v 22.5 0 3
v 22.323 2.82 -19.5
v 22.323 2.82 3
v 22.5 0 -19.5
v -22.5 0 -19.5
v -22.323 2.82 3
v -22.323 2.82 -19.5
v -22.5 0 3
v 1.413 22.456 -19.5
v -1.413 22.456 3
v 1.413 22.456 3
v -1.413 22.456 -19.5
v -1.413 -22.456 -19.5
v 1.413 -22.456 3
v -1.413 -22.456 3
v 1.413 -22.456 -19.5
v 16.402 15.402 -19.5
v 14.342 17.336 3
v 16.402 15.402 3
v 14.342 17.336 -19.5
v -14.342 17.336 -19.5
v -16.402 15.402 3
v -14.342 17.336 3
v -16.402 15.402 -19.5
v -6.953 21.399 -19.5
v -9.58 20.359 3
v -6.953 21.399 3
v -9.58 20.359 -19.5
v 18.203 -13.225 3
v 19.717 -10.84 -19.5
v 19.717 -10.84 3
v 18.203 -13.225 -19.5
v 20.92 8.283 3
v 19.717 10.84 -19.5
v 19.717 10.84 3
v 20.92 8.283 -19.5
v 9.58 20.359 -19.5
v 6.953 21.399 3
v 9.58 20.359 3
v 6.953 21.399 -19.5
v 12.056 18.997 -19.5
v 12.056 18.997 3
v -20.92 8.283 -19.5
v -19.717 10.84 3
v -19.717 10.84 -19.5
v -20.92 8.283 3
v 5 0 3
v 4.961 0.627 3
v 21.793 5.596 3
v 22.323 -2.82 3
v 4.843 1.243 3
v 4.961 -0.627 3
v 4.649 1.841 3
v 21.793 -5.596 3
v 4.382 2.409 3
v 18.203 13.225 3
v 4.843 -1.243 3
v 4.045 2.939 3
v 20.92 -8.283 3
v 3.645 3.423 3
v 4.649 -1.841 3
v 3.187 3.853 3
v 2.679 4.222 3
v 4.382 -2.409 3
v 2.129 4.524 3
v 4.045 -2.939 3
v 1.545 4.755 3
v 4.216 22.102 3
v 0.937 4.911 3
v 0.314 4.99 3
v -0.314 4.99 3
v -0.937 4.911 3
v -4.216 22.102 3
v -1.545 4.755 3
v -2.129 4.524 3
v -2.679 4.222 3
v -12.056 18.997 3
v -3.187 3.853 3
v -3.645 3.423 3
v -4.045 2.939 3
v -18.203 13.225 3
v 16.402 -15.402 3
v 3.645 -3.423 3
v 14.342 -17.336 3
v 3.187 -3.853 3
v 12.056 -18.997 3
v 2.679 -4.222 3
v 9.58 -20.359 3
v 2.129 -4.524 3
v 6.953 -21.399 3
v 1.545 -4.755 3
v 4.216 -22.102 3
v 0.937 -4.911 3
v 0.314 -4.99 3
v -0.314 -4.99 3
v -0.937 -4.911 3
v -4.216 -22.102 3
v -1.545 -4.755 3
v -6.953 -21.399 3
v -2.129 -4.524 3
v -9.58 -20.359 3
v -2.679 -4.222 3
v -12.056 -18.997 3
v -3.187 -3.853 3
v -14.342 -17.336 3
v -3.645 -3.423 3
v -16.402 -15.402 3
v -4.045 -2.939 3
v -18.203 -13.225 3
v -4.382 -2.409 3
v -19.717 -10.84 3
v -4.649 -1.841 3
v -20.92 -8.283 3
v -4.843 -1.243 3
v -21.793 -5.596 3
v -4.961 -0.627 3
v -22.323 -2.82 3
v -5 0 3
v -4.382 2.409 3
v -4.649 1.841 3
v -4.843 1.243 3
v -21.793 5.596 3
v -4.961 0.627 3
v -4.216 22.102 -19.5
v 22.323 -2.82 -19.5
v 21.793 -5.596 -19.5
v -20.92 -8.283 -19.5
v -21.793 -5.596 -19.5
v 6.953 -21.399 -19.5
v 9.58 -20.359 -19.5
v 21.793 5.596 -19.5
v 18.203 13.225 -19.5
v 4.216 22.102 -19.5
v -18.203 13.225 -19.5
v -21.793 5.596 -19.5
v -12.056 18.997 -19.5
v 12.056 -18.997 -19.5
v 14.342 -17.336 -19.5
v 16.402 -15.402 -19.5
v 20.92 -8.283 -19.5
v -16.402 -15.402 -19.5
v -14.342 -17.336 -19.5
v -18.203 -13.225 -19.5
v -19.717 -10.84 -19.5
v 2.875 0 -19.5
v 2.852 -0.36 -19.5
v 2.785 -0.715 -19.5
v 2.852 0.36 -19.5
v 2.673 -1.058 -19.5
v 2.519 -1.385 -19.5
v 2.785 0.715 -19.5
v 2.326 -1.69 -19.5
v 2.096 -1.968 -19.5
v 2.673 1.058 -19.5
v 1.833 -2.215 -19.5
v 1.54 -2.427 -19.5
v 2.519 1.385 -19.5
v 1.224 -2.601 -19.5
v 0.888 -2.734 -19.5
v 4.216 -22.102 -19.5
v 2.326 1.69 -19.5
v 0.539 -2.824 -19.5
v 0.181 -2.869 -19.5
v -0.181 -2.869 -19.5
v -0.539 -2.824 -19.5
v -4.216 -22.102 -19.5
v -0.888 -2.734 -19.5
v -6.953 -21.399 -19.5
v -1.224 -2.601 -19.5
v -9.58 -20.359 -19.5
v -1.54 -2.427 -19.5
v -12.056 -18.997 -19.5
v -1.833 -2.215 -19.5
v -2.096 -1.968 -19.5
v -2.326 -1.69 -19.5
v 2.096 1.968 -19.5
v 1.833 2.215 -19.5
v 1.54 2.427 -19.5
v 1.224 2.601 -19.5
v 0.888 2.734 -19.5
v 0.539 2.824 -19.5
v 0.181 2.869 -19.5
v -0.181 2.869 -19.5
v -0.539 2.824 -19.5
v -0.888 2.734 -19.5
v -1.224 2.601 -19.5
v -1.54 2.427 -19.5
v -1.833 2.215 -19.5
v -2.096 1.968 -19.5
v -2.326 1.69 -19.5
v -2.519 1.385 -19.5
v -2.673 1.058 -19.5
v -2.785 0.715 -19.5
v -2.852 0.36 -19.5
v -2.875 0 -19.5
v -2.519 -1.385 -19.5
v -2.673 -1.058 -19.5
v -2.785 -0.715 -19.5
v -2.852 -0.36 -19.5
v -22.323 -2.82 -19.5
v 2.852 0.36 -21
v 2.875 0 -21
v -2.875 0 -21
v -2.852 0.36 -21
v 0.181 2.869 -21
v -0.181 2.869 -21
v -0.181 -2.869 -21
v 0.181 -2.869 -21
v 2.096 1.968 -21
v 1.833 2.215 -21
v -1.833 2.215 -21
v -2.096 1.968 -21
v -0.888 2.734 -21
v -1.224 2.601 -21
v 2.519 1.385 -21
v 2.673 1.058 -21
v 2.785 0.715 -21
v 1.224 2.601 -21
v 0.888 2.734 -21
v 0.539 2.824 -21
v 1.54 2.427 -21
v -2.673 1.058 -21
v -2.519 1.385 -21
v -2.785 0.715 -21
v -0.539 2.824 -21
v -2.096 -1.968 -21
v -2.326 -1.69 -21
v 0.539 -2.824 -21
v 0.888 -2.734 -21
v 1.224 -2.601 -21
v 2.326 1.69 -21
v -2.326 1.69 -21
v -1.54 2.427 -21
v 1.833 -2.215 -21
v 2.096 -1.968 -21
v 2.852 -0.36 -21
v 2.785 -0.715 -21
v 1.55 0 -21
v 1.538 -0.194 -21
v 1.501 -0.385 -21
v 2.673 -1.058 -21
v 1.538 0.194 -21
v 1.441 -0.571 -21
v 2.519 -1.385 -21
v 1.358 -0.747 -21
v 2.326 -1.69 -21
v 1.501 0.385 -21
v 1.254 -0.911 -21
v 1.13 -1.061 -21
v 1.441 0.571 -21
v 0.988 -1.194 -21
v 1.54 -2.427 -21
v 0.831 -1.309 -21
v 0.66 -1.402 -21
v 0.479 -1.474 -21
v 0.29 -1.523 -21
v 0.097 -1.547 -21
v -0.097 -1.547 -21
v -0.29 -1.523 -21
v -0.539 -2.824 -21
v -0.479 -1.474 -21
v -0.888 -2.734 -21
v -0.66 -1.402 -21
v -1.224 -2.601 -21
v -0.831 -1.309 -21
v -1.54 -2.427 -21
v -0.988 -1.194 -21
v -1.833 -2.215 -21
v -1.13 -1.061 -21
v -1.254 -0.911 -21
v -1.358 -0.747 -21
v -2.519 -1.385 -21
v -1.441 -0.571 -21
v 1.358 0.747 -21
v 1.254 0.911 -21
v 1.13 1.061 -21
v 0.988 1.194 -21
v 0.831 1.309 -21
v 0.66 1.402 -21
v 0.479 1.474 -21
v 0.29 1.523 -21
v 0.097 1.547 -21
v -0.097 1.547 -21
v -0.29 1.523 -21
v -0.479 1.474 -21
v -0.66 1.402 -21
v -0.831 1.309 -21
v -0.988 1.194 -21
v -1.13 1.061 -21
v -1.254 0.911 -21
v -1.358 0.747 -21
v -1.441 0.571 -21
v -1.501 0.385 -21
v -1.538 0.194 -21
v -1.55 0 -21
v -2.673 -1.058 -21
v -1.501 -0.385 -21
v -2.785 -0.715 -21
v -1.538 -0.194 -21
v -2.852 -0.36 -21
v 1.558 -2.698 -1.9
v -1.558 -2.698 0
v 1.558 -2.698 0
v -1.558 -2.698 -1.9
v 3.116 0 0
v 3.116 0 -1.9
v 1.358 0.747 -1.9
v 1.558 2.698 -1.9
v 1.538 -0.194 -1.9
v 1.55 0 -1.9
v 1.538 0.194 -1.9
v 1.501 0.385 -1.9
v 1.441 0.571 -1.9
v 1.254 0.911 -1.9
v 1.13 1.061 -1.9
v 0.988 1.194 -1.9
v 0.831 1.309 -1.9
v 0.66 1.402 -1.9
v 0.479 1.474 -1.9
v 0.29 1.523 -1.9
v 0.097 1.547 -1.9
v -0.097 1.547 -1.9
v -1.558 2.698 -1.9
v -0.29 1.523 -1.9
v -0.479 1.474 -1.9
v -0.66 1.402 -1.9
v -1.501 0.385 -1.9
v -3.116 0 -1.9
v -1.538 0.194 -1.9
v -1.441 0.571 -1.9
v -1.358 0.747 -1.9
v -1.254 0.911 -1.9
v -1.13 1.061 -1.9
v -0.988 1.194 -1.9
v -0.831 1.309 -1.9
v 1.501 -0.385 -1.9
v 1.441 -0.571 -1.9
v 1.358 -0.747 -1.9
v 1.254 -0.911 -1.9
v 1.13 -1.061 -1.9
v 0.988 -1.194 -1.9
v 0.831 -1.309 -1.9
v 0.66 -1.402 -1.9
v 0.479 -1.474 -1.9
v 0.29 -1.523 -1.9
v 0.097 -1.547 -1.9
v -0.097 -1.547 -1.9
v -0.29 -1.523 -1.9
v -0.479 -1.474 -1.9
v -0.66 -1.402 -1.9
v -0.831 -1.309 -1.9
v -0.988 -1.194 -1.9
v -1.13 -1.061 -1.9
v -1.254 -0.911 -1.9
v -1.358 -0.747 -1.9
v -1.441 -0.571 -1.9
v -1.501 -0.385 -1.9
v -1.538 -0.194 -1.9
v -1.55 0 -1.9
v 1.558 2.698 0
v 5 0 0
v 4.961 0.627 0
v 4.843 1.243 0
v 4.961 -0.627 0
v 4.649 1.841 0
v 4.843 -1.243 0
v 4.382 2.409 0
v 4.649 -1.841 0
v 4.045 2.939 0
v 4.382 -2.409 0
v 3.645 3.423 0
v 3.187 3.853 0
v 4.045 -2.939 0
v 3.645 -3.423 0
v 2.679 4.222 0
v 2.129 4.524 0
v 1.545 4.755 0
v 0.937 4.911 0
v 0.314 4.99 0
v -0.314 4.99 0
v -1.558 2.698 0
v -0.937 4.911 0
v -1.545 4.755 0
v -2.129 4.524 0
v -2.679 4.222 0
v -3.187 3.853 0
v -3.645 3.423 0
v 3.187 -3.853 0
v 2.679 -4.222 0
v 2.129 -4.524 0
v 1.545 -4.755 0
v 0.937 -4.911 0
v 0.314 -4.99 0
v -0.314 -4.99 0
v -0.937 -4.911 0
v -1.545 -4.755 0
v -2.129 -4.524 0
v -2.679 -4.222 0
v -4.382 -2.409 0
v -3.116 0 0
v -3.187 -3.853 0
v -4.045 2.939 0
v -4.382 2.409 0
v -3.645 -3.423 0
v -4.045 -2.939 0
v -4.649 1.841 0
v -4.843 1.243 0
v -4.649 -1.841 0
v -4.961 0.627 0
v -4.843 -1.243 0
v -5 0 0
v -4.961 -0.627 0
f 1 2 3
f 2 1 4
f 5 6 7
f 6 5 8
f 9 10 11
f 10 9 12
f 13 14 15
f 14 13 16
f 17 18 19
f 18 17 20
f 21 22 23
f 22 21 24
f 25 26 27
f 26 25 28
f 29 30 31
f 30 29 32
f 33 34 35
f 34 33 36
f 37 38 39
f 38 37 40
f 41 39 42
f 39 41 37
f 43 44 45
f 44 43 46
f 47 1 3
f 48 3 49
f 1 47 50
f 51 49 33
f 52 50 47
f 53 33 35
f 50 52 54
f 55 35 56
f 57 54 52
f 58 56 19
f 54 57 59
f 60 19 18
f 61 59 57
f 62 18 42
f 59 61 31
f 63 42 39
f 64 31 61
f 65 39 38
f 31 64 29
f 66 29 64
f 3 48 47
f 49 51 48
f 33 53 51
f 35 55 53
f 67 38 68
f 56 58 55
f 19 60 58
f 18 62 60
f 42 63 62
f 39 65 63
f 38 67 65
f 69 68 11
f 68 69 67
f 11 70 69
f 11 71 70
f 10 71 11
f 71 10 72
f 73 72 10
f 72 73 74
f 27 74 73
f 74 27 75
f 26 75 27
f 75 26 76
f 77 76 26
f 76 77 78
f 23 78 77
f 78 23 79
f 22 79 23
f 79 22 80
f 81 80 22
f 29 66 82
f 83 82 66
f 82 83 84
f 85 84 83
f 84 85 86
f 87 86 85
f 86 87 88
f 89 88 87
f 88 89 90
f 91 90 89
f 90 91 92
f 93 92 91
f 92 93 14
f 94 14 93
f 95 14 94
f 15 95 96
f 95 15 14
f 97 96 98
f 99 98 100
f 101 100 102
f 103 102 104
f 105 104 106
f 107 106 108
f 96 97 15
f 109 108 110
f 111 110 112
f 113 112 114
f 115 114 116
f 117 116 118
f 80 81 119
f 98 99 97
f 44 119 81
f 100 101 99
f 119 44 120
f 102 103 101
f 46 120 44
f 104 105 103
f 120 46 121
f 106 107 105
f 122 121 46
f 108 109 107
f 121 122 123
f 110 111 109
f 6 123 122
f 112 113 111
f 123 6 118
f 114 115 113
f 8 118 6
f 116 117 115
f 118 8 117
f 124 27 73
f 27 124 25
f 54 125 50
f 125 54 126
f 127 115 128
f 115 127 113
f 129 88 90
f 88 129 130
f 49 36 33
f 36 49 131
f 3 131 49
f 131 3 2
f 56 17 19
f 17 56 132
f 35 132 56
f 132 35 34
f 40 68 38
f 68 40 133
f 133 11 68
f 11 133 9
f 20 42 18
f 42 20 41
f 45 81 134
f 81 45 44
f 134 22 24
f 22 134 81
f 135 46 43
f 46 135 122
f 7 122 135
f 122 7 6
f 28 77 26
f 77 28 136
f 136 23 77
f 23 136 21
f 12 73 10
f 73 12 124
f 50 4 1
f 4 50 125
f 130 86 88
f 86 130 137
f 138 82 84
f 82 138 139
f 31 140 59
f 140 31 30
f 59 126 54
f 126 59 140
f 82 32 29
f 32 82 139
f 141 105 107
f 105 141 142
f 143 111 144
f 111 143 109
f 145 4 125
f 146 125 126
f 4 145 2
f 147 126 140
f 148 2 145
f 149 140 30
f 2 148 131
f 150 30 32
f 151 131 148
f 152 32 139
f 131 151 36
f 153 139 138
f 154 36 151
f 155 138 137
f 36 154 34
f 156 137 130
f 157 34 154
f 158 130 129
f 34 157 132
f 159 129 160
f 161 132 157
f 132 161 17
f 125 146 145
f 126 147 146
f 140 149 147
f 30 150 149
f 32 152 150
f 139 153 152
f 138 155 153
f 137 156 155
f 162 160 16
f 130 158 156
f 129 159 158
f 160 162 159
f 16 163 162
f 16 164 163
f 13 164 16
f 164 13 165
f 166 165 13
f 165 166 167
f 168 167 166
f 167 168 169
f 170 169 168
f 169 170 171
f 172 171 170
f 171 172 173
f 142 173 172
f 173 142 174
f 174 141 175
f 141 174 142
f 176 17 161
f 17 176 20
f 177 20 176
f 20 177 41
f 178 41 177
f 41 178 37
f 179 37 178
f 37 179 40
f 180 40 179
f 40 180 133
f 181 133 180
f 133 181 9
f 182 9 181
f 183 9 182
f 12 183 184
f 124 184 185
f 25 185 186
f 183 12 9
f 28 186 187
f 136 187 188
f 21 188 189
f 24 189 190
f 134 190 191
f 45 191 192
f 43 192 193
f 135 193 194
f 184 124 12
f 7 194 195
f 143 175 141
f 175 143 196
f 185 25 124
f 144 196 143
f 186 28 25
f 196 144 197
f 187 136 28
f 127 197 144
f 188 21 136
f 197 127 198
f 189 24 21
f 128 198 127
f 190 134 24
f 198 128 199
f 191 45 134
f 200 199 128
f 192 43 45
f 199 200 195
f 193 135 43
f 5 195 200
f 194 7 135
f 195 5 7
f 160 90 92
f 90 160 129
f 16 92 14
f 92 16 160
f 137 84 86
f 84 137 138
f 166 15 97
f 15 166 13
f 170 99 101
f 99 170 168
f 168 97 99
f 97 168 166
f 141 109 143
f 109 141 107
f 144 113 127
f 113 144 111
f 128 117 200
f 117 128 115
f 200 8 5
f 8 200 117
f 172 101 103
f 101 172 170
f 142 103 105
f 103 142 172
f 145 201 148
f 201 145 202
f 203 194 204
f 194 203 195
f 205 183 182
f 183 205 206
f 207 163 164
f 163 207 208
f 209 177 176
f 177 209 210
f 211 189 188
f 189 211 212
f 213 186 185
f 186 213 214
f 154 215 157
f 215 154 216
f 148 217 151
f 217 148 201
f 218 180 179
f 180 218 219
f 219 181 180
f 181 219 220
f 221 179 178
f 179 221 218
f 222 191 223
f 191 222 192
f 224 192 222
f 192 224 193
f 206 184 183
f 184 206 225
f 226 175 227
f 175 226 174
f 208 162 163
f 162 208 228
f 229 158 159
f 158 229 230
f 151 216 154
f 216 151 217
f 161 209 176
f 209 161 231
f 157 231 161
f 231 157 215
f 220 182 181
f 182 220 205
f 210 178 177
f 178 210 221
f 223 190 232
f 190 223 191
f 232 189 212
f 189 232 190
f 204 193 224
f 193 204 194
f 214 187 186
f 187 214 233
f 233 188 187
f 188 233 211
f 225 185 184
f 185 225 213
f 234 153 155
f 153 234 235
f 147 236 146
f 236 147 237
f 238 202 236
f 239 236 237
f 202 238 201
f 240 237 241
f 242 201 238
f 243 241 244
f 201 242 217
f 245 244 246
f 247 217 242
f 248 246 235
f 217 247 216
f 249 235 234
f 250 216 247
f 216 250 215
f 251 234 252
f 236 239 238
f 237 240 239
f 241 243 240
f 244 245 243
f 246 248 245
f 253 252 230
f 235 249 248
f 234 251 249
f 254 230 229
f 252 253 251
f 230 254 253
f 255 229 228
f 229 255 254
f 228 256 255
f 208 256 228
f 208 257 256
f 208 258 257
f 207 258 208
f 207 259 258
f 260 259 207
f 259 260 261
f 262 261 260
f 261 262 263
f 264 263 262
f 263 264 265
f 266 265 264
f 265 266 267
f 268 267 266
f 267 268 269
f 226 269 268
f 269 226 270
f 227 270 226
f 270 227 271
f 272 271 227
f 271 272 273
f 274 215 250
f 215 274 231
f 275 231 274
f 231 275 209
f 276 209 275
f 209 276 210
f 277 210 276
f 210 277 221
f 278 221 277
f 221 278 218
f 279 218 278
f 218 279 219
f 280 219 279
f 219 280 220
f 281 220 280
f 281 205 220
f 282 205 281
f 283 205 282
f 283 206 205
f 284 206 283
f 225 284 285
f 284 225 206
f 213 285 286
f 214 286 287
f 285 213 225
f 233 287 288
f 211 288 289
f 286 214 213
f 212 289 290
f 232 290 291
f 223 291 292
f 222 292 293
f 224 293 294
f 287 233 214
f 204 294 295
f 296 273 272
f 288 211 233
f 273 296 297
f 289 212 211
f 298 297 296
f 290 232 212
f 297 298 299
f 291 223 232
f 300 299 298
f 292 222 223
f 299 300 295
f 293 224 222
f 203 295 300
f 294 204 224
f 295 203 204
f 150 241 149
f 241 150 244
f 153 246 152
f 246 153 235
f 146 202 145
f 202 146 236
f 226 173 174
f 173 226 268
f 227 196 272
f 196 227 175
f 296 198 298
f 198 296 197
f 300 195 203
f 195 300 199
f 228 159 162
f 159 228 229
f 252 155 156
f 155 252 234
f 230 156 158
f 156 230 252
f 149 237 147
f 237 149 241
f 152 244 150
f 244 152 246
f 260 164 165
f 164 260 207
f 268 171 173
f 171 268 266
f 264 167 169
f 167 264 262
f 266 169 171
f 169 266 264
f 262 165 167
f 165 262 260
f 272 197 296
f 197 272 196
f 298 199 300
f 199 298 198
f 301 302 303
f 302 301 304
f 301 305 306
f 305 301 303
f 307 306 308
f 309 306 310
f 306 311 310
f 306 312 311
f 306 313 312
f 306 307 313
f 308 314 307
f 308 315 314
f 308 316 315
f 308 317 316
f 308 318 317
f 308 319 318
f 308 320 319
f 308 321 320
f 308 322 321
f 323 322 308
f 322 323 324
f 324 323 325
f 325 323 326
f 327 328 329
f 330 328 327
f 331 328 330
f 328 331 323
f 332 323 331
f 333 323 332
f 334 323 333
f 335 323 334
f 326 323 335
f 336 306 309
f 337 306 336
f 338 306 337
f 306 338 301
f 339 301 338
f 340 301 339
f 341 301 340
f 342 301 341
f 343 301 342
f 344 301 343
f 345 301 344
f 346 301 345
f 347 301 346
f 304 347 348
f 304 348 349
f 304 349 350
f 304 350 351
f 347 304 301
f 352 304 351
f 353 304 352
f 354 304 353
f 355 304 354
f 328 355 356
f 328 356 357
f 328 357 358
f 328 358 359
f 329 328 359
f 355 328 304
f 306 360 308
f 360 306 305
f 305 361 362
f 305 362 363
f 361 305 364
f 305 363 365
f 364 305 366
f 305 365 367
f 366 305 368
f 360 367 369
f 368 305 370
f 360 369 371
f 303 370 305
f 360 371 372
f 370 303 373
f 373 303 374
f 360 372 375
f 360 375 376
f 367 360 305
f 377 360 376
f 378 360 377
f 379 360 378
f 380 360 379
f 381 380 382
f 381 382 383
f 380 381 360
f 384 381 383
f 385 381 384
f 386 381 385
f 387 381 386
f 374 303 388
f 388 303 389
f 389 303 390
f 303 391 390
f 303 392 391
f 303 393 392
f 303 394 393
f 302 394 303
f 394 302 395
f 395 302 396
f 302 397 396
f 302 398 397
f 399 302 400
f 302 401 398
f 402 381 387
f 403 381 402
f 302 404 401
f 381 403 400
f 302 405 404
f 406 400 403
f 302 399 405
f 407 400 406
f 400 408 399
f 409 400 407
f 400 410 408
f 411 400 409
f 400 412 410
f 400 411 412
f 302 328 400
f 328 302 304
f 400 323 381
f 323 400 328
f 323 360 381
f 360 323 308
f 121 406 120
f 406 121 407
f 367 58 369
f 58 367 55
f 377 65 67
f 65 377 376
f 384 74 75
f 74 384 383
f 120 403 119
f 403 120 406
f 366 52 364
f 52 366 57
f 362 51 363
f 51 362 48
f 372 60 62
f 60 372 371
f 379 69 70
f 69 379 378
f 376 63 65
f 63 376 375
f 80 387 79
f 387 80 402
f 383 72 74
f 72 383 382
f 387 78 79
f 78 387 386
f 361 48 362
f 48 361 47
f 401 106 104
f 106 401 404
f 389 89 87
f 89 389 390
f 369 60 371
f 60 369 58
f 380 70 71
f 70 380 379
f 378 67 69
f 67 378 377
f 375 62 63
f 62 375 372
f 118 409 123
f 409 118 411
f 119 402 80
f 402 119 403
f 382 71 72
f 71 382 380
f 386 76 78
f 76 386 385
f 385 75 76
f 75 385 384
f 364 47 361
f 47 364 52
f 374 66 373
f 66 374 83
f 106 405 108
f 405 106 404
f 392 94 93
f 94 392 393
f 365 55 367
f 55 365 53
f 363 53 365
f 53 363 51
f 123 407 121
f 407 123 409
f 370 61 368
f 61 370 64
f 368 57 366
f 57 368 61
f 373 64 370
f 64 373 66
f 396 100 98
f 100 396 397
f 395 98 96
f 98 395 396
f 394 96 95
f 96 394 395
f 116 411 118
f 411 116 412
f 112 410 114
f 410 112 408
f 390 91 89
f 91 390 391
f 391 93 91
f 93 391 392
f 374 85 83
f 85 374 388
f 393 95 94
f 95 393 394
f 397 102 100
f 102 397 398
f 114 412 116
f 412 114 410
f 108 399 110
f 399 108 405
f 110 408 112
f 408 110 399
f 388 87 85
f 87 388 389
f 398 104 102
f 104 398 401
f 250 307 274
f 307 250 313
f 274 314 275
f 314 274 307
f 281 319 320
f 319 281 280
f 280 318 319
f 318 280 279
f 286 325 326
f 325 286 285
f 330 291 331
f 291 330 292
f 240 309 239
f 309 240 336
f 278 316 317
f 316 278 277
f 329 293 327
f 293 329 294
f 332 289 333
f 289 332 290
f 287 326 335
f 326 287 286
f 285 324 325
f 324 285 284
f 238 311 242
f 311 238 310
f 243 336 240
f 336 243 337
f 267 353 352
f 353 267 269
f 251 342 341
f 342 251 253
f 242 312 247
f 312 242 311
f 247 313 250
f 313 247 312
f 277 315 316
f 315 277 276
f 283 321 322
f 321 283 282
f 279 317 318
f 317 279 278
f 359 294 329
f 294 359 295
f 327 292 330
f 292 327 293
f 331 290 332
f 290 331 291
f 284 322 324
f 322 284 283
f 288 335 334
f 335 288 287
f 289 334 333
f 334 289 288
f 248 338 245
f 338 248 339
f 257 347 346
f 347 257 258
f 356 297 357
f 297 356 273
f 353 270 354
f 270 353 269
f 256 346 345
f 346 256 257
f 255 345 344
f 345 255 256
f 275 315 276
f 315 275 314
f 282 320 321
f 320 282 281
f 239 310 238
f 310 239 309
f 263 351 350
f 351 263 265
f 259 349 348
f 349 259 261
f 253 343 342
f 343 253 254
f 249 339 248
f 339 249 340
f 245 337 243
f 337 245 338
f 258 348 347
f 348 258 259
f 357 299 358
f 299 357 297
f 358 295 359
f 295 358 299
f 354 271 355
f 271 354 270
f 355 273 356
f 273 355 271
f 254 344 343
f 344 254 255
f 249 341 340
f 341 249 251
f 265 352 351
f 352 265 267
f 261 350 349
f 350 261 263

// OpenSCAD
$fn = 50;

difference() {
	union() {
		translate(v = [0, 0, -19.5]) {
			cylinder(h = 22.5, r = 22.5);
		}
		#translate(v = [0, 0, -21.0]) {
			cylinder(h = 21, r = 2.875);
		}
	}
	union() {
		translate(v = [0, 0, 0]) {
			rotate(a = [0, 0, 0]) {
				difference() {
					union() {
						translate(v = [0, 0, -1.9]) {
							linear_extrude(height = 1.9) {
								polygon(points = [[3.1158, 0.0], [1.5579000000000005, 2.698361953111554], [-1.5578999999999994, 2.6983619531115544], [-3.1158, 3.815754496783323e-16], [-1.5579000000000014, -2.6983619531115535], [1.557899999999998, -2.6983619531115552]]);
							}
						}
					}
					union();
				}
			}
		}
		#cylinder(h = 3, r = 5.0);
		#translate(v = [0, 0, -100.0]) {
			cylinder(h = 200, r = 1.55);
		}
	}
}
